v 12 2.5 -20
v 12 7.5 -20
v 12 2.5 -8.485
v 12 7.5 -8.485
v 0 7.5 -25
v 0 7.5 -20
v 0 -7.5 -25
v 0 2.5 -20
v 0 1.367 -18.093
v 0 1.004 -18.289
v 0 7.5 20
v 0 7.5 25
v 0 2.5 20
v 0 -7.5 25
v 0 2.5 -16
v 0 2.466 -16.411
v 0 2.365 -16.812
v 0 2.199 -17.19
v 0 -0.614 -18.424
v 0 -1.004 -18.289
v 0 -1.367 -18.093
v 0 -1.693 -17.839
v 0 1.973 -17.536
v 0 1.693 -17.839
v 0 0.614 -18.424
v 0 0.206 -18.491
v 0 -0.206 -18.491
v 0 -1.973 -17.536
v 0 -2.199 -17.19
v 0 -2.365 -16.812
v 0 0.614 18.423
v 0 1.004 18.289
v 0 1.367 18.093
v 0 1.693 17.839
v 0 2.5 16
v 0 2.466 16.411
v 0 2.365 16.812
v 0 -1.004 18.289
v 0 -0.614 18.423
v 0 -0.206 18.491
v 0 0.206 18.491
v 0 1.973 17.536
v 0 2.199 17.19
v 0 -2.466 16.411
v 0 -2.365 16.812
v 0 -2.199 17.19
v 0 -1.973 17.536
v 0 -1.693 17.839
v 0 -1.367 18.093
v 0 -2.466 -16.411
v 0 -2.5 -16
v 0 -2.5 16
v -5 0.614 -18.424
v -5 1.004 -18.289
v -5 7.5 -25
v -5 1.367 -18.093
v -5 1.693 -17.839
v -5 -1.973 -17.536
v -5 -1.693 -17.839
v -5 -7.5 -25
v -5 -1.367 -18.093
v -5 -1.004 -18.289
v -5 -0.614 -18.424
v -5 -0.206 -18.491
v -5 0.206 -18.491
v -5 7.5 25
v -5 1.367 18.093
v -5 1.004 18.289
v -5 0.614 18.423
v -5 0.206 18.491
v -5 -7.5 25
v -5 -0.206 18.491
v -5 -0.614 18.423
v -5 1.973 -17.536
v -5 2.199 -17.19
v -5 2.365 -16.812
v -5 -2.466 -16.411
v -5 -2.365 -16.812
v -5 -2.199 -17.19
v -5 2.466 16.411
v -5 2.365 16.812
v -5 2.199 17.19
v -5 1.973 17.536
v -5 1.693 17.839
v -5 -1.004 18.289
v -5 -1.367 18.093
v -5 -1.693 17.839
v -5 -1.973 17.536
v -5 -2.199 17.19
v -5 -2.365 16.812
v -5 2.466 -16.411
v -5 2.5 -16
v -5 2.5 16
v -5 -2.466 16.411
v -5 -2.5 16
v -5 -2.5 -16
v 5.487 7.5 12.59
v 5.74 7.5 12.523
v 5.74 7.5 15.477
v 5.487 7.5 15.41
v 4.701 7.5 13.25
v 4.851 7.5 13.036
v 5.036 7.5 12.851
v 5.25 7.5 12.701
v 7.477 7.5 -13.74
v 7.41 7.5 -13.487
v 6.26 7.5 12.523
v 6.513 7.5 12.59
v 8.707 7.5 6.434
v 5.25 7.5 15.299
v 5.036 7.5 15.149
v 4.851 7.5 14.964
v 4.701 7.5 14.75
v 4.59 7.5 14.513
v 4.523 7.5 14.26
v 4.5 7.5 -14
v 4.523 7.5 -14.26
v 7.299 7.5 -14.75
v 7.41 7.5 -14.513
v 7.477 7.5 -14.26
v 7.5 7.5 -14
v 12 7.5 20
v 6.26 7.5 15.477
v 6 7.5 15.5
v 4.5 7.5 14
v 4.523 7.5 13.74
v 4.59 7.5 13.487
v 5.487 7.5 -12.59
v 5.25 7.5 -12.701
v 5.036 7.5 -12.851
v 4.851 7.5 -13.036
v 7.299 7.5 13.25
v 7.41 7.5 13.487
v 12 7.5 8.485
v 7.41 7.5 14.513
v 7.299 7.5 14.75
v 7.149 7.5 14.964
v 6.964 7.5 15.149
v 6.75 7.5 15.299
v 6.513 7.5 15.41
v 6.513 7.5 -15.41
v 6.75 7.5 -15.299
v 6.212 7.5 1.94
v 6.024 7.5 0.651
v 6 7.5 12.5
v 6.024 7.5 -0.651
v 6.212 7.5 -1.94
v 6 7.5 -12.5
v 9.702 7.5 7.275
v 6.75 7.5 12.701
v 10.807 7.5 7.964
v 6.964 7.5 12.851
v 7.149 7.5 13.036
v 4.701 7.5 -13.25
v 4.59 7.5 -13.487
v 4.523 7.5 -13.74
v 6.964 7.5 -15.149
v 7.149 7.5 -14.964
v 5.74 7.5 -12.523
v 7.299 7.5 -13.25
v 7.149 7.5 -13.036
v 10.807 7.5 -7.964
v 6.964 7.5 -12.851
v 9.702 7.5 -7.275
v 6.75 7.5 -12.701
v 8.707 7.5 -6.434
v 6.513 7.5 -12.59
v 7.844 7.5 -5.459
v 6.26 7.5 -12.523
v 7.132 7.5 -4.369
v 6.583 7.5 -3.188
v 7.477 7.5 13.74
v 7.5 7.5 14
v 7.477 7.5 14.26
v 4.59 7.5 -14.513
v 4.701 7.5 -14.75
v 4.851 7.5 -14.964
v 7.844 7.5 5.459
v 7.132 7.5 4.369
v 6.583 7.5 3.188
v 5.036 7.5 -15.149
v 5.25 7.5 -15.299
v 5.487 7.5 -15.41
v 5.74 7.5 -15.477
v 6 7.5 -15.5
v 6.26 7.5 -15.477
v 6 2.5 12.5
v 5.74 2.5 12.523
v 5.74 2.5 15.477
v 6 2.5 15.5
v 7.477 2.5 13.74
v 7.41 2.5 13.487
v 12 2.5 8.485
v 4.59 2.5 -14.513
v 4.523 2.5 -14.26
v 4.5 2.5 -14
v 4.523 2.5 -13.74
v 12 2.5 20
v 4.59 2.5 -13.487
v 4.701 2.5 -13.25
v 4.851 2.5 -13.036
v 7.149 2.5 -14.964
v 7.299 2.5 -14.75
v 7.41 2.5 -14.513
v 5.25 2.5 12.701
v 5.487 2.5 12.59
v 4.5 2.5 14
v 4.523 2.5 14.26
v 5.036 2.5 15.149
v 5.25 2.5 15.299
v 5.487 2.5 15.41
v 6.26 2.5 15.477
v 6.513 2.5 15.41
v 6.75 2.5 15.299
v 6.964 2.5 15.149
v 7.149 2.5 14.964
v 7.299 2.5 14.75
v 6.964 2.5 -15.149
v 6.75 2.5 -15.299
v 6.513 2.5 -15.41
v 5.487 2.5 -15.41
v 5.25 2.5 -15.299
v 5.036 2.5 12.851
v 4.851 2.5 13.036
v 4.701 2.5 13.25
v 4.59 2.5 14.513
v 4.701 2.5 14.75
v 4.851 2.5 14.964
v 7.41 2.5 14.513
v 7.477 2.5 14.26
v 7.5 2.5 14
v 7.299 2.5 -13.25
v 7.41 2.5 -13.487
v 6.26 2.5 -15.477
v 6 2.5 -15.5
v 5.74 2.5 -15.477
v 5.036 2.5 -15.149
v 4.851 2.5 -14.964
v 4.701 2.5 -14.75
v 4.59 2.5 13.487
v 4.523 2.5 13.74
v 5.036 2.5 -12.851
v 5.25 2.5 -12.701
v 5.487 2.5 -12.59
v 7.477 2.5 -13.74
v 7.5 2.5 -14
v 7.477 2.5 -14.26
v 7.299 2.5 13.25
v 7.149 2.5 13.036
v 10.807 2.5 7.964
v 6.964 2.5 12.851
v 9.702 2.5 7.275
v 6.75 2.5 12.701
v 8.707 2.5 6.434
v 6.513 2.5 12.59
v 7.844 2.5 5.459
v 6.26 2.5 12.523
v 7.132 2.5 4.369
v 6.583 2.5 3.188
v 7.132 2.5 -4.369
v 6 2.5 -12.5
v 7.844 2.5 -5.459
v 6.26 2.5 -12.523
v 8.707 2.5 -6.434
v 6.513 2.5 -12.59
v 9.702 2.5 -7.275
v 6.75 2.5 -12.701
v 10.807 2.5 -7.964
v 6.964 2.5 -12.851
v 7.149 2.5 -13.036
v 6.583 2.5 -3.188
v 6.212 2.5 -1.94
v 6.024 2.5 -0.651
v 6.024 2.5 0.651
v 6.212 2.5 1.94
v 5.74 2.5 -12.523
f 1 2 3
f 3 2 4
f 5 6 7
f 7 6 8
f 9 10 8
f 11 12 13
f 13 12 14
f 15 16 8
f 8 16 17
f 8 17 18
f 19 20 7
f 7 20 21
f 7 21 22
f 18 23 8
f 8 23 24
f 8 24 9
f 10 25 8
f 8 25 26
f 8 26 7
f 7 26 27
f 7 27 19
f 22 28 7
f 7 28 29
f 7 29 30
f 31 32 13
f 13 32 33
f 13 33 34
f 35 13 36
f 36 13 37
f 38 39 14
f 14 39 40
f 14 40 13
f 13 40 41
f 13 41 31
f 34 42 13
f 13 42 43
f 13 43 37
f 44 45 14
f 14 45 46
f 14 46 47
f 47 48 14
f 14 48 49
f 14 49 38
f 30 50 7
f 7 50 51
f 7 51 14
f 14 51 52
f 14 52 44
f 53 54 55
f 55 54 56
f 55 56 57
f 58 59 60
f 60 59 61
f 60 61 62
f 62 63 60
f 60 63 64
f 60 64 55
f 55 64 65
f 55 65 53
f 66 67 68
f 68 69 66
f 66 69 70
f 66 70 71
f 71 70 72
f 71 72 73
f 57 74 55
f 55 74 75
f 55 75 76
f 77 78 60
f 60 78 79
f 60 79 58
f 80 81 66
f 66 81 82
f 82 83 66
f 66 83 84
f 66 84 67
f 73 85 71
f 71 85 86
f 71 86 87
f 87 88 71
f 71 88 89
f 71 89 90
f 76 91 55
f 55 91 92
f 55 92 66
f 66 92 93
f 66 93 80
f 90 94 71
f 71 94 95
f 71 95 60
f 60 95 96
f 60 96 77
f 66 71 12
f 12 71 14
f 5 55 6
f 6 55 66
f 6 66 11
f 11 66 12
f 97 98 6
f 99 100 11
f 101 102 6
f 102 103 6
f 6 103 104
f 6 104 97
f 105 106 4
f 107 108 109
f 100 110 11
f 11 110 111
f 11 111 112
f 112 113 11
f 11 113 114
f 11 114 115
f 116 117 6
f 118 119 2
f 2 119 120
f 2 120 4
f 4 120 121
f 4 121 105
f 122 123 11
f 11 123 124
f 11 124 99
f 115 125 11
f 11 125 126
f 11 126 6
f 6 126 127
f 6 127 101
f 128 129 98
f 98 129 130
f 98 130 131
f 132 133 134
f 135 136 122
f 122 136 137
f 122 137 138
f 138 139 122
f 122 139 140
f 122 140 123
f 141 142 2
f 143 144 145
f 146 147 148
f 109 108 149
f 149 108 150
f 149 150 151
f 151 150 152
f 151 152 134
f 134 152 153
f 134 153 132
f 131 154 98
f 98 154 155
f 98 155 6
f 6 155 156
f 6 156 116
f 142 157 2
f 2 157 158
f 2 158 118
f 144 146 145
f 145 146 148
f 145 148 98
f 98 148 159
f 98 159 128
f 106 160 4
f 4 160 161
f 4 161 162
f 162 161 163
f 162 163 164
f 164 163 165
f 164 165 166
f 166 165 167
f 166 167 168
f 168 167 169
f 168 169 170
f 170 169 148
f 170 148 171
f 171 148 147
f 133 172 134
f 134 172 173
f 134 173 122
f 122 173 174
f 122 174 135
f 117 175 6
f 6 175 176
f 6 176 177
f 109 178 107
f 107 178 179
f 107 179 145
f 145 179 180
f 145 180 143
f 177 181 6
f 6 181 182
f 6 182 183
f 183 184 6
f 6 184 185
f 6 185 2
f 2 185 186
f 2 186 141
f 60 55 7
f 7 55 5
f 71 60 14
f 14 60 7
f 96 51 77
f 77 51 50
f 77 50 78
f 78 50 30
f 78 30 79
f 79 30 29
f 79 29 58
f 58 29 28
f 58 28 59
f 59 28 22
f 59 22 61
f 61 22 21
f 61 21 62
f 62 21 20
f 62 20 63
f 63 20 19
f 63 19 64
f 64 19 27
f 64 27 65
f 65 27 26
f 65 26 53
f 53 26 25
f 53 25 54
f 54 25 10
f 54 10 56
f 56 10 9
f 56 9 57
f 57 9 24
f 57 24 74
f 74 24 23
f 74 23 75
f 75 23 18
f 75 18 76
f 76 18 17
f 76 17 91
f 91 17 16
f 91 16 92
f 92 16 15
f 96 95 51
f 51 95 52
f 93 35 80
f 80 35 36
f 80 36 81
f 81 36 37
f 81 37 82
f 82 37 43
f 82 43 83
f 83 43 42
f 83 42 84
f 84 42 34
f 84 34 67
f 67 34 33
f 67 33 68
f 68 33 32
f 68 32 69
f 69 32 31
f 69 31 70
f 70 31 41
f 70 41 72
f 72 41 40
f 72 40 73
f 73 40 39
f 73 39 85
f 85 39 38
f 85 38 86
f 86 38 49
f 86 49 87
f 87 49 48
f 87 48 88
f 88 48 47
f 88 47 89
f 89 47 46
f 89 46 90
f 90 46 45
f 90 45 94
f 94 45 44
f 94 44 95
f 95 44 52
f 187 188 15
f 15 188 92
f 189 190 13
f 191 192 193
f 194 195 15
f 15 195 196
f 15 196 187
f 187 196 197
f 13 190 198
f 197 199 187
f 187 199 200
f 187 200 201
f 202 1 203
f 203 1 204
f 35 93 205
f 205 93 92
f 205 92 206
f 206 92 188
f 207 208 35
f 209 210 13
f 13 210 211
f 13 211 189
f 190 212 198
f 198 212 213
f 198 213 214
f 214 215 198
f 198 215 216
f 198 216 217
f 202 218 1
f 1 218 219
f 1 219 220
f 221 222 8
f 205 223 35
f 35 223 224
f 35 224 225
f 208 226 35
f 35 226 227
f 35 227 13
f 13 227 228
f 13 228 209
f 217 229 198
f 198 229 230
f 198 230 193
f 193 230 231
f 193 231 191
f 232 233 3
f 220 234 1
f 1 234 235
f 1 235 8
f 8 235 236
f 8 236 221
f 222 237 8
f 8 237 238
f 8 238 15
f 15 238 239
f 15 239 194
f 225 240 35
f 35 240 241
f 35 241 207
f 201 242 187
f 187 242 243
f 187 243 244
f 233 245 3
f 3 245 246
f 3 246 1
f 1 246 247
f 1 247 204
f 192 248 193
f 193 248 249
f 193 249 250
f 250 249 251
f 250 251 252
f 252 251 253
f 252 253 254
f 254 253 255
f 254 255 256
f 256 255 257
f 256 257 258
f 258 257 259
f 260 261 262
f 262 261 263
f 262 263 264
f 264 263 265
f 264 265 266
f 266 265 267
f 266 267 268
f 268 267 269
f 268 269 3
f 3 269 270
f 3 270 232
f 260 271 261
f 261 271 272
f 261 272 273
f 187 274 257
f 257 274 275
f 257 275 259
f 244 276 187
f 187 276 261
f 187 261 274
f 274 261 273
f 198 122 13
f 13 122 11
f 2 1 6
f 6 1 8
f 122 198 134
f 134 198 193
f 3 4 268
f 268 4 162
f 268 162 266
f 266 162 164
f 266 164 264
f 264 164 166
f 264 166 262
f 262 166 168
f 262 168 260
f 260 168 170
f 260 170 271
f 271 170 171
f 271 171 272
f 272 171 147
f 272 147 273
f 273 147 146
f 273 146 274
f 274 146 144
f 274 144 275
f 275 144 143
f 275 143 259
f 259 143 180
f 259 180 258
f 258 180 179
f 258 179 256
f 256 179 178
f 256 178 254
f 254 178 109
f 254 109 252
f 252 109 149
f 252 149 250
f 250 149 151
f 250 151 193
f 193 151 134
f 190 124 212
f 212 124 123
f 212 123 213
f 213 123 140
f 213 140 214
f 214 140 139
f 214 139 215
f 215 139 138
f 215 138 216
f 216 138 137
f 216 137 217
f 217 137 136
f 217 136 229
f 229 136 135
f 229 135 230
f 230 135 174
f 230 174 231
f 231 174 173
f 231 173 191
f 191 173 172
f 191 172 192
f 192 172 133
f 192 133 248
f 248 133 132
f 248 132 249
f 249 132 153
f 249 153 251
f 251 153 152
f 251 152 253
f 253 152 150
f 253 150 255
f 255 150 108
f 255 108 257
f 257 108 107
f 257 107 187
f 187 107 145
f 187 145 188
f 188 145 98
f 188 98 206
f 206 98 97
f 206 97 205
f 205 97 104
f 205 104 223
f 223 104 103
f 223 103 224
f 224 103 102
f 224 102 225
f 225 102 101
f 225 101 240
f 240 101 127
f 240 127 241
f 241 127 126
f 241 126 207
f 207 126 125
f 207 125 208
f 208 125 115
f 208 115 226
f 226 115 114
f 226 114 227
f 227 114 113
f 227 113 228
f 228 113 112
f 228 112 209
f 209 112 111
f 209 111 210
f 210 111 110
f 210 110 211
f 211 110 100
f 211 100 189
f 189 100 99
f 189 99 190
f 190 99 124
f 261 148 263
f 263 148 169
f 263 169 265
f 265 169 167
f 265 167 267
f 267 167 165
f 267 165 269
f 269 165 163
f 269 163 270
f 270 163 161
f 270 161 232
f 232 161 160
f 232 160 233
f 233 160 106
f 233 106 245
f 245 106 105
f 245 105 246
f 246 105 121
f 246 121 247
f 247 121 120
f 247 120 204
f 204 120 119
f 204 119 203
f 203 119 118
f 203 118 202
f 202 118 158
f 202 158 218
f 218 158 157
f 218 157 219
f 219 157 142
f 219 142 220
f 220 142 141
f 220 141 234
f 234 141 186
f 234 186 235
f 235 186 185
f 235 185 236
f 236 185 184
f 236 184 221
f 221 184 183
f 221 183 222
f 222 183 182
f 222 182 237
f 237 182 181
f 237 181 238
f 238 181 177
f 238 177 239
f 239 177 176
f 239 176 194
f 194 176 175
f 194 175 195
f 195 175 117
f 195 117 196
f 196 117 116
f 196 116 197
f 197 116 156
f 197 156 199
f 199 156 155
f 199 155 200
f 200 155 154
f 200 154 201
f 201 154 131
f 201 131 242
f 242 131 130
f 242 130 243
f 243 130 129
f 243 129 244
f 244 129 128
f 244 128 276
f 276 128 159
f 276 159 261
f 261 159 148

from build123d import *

# Parameters (mm, degrees)
SKETCH_1_W          = 50
SKETCH_1_H          = 15
EXTRUDE_1_DEPTH     = 5
SKETCH_2_W          = 40
SKETCH_2_H          = 5
EXTRUDE_3_DEPTH     = 12
SKETCH_3_R          = 9
SKETCH_3_R_2        = 1.5
CUT_EXTRUDE_1_DEPTH = 16


with BuildPart() as part:
    # 草图1 → 凸台-拉伸1 (new body)
    with BuildSketch(Plane.ZY):
        Rectangle(SKETCH_1_W, SKETCH_1_H)
        with BuildLine():
            Line((-16, 2.5), (16, 2.5))
            ThreePointArc((16, 2.5), (18.5, 0), (16, -2.5))
            Line((16, -2.5), (-16, -2.5))
            ThreePointArc((-16, -2.5), (-18.5, 0), (-16, 2.5))
        make_face(mode=Mode.SUBTRACT)
    extrude(amount=EXTRUDE_1_DEPTH)

    # 草图2 → 凸台-拉伸3 (add)
    with BuildSketch(Plane(origin=(0, 0, 0), x_dir=(0, 0, -1), z_dir=(1, 0, 0))):
        with Locations((0, 5)):
            Rectangle(SKETCH_2_W, SKETCH_2_H)
    extrude(amount=EXTRUDE_3_DEPTH)

    # 草图3 → 切除-拉伸1 (cut, through all)
    with BuildSketch(Plane(origin=(0, 7.5, 0), x_dir=(1, 0, 0), z_dir=(0, 1, 0))):
        with Locations((15, 0)):
            Circle(SKETCH_3_R)
        with Locations((6, 14)):
            Circle(SKETCH_3_R_2)
        with Locations((6, -14)):
            Circle(SKETCH_3_R_2)
    extrude(amount=-CUT_EXTRUDE_1_DEPTH, mode=Mode.SUBTRACT)


solid = part.part
